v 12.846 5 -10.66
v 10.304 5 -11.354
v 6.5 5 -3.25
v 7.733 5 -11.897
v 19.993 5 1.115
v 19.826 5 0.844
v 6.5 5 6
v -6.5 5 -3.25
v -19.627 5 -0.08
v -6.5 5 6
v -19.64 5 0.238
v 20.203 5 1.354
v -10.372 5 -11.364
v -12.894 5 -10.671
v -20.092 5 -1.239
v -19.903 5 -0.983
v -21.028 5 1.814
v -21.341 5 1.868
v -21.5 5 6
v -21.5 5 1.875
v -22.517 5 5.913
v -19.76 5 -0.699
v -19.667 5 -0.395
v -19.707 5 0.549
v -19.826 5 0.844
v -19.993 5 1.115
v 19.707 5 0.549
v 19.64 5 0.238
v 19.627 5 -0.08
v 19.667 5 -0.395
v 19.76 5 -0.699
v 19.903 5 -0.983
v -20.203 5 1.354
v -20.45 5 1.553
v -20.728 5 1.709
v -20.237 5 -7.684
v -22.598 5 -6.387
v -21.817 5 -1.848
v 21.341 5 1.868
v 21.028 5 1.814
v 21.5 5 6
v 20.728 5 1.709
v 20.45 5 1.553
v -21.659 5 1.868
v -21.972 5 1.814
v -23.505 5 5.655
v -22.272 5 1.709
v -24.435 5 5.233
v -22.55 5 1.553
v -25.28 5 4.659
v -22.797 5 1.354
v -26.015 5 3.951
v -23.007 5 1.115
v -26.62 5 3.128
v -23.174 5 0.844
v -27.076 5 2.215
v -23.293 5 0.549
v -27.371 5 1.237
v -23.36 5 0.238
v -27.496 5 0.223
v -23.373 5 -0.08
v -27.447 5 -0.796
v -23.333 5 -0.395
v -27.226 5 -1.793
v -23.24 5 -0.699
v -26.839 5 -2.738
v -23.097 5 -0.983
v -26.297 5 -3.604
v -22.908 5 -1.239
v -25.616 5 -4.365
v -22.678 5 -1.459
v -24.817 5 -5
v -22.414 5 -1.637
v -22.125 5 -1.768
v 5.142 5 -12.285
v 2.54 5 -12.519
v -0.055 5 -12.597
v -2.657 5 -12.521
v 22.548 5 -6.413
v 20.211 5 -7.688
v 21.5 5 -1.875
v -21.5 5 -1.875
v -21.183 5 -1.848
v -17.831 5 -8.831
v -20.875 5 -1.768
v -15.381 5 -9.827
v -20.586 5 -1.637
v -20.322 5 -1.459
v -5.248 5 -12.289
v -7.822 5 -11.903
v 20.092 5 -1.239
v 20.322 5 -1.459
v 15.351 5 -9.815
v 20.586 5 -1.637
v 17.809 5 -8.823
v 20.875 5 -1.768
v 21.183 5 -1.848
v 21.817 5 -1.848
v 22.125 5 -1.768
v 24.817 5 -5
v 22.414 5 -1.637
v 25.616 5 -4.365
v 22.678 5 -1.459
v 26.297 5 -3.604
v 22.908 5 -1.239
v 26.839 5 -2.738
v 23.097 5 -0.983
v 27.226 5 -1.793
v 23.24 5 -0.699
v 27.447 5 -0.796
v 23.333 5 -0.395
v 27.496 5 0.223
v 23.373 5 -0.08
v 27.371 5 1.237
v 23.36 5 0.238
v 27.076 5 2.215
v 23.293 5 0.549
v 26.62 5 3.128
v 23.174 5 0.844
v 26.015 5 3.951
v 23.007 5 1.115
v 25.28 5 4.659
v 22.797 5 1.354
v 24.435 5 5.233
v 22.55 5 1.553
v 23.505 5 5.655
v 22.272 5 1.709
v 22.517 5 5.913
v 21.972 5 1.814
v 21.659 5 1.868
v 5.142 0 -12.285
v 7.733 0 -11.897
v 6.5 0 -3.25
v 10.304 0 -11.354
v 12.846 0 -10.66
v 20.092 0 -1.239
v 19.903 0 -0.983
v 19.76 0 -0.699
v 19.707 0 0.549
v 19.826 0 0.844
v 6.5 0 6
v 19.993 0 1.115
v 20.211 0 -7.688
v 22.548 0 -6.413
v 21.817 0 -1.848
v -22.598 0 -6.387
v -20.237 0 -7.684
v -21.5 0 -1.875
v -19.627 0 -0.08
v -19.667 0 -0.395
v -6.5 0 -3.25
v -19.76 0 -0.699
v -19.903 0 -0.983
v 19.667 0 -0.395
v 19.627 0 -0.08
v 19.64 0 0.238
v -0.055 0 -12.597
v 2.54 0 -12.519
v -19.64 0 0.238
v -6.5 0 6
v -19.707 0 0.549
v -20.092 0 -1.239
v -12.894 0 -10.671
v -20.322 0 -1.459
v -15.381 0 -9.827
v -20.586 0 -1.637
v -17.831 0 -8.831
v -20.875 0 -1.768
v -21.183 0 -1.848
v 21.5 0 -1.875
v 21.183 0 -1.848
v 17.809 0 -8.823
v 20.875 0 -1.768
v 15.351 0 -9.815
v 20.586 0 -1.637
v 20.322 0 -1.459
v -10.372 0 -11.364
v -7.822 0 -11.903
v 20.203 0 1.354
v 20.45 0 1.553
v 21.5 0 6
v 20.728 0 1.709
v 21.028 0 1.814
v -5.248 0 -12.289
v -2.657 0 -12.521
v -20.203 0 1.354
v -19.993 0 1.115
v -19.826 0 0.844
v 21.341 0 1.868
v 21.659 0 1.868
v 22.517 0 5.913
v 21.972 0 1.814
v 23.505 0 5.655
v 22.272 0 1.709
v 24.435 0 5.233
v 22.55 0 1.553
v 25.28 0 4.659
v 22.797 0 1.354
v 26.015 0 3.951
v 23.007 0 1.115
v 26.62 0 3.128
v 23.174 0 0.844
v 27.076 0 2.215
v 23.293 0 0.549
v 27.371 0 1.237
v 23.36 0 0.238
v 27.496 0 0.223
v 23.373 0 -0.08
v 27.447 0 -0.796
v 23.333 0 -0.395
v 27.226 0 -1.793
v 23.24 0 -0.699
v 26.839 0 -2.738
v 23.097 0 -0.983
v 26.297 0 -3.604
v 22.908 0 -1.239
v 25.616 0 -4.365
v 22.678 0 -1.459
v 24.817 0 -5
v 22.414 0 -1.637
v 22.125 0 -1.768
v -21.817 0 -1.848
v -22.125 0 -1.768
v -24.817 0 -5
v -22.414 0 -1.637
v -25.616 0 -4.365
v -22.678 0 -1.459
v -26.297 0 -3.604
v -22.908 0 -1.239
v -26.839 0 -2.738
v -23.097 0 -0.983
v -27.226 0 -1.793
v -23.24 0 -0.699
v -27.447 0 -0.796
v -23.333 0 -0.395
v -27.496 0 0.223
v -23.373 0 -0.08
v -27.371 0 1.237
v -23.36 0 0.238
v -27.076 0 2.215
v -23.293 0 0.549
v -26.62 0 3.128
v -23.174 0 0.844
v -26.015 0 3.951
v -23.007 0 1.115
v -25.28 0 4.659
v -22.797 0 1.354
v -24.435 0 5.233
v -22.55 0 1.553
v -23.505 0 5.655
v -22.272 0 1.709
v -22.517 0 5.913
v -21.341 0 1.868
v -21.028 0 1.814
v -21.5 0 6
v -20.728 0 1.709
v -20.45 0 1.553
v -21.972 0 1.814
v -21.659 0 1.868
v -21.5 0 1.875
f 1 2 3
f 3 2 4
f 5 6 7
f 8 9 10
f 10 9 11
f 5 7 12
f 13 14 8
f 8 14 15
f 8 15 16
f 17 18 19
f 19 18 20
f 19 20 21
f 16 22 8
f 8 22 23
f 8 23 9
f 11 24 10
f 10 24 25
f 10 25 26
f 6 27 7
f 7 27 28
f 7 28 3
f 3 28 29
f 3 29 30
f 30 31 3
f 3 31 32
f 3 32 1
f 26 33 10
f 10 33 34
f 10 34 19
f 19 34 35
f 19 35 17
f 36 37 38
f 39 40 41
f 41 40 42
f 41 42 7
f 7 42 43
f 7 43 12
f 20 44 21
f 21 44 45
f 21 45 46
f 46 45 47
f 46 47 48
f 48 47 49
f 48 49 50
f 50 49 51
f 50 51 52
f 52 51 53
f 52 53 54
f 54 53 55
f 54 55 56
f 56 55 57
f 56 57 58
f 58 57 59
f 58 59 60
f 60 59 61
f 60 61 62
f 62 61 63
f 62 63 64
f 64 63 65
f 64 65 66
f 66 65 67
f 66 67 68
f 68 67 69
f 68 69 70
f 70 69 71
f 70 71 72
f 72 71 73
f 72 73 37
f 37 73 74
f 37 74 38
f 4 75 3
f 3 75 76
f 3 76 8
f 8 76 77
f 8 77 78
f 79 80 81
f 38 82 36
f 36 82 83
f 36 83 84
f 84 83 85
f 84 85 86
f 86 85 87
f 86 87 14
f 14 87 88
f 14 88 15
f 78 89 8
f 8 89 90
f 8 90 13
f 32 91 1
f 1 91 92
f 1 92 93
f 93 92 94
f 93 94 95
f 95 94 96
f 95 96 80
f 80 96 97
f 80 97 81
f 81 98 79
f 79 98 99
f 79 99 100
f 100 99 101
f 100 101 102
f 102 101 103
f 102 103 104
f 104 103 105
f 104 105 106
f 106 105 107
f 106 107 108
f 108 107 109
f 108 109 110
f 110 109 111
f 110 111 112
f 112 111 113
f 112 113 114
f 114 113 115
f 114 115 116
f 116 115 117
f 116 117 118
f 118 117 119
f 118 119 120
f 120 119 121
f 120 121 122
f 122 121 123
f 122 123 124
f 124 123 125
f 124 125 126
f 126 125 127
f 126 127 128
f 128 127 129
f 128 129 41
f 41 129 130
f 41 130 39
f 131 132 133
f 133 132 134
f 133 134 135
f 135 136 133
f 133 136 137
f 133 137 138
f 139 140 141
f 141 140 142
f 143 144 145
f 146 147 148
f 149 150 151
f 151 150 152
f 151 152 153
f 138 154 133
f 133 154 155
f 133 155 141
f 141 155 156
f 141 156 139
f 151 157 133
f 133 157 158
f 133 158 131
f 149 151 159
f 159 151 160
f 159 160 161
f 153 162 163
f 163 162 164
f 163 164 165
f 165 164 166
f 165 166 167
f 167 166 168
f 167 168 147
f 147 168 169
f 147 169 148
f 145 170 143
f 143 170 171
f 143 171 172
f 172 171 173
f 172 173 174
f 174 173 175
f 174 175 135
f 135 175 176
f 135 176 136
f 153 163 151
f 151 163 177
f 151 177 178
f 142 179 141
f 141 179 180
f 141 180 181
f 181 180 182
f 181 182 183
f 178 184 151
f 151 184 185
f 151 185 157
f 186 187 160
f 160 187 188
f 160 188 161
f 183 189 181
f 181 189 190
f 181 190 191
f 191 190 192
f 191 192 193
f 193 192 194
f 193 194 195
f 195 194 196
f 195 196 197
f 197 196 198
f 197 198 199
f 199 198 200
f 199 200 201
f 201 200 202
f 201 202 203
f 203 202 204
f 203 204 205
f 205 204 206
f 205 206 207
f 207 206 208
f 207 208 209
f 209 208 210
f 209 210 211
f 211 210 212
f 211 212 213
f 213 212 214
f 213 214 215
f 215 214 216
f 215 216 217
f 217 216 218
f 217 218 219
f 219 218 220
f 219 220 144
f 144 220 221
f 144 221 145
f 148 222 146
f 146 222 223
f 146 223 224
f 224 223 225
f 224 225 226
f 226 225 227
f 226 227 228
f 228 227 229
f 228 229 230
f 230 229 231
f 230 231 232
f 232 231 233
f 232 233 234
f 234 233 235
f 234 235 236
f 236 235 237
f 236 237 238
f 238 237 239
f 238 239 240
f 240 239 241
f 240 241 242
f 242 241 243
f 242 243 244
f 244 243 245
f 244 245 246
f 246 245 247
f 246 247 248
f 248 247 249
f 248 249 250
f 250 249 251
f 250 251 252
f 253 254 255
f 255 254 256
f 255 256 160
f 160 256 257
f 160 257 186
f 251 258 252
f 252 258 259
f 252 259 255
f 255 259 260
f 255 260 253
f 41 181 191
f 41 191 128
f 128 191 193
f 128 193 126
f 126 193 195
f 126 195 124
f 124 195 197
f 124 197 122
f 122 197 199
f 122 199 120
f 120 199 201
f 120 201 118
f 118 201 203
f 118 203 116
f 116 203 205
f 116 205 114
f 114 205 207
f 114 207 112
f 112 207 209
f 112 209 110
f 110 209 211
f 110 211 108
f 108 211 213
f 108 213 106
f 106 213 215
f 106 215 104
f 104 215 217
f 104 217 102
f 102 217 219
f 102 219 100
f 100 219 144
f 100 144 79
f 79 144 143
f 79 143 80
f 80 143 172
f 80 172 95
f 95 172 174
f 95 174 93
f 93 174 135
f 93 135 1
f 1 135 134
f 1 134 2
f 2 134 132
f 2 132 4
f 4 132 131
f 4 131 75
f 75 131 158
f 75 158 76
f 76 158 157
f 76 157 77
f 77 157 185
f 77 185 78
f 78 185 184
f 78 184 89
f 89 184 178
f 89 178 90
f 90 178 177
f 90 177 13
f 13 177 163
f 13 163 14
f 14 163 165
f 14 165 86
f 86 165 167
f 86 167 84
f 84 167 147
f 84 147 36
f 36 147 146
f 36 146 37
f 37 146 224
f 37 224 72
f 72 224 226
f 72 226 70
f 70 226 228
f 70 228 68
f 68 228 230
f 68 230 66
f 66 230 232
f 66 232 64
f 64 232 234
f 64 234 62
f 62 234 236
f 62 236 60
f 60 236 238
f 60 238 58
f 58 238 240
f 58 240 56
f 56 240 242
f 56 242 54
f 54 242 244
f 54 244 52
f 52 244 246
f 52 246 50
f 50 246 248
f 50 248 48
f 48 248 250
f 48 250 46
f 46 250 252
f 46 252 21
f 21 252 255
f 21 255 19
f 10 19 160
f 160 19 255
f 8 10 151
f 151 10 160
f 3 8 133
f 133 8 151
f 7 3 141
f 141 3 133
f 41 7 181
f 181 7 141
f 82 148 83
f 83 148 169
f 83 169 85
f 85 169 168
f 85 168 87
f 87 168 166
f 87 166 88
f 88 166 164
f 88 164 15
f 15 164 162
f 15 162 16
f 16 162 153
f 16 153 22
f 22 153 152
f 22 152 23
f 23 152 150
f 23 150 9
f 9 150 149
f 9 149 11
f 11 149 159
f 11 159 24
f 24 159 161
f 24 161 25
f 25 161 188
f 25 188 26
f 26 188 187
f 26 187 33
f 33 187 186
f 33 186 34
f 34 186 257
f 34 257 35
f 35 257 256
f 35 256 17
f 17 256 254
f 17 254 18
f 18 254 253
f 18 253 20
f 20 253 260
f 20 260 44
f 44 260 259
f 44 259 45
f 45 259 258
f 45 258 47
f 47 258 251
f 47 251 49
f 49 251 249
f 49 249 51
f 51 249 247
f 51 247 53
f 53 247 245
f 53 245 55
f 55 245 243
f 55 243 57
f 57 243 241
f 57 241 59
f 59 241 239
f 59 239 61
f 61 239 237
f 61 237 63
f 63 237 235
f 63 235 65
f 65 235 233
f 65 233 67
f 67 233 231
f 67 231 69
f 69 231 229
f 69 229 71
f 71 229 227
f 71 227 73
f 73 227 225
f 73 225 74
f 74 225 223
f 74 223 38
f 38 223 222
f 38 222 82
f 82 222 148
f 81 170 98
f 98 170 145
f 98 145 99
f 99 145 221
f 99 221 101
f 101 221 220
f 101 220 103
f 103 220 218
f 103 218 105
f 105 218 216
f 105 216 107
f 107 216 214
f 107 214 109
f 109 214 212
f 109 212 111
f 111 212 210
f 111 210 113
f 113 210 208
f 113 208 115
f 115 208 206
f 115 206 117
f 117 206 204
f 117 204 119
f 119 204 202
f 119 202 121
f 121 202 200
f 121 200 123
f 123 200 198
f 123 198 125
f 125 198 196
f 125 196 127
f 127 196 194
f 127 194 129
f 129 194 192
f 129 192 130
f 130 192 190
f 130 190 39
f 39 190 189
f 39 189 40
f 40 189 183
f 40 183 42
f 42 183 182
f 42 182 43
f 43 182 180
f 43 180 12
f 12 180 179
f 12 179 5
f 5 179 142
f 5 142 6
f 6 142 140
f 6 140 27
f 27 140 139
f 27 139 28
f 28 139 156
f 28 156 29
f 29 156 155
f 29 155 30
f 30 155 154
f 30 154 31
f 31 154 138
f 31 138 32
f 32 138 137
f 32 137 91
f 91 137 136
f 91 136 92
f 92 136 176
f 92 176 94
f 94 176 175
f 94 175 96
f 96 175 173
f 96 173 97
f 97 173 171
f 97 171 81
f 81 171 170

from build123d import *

# Parameters (mm, degrees)
SKETCH1_R           = 1.875
BOSS_EXTRUDE1_DEPTH = 5


with BuildPart() as part:
    # Sketch1 → Boss-Extrude1 (new body)
    with BuildSketch(Plane(origin=(0, 0, 0), x_dir=(1, 0, 0), z_dir=(0, 1, 0))):
        with BuildLine():
            Line((21.5, -6), (6.5, -6))
            Line((6.5, -6), (6.5, -3.25))
            Line((6.5, -3.25), (6.5, 3.25))
            Line((6.5, 3.25), (-6.5, 3.25))
            Line((-6.5, 3.25), (-6.5, -3.25))
            Line((-6.5, -3.25), (-6.5, -6))
            Line((-6.5, -6), (-21.5, -6))
            ThreePointArc((-21.5, -6), (-27.244562647, -1.732050808), (-24.81662479, 5))
            add(Edge.make_bspline(
                [(-24.81662479, 5), (-8.736295123, 15.666484002), (10.378585258, 14.577111967), (24.81662479, 5)],
                knots=[0, 0, 0, 0, 1, 1, 1, 1], degree=3))
            ThreePointArc((24.81662479, 5), (27.244562647, -1.732050808), (21.5, -6))
        make_face()
        with Locations(Location((-21.5, 0, 0), (0, 0, 270))):
            Circle(SKETCH1_R, mode=Mode.SUBTRACT)
        with Locations(Location((21.5, 0, 0), (0, 0, 90))):
            Circle(SKETCH1_R, mode=Mode.SUBTRACT)
    extrude(amount=BOSS_EXTRUDE1_DEPTH)


solid = part.part
